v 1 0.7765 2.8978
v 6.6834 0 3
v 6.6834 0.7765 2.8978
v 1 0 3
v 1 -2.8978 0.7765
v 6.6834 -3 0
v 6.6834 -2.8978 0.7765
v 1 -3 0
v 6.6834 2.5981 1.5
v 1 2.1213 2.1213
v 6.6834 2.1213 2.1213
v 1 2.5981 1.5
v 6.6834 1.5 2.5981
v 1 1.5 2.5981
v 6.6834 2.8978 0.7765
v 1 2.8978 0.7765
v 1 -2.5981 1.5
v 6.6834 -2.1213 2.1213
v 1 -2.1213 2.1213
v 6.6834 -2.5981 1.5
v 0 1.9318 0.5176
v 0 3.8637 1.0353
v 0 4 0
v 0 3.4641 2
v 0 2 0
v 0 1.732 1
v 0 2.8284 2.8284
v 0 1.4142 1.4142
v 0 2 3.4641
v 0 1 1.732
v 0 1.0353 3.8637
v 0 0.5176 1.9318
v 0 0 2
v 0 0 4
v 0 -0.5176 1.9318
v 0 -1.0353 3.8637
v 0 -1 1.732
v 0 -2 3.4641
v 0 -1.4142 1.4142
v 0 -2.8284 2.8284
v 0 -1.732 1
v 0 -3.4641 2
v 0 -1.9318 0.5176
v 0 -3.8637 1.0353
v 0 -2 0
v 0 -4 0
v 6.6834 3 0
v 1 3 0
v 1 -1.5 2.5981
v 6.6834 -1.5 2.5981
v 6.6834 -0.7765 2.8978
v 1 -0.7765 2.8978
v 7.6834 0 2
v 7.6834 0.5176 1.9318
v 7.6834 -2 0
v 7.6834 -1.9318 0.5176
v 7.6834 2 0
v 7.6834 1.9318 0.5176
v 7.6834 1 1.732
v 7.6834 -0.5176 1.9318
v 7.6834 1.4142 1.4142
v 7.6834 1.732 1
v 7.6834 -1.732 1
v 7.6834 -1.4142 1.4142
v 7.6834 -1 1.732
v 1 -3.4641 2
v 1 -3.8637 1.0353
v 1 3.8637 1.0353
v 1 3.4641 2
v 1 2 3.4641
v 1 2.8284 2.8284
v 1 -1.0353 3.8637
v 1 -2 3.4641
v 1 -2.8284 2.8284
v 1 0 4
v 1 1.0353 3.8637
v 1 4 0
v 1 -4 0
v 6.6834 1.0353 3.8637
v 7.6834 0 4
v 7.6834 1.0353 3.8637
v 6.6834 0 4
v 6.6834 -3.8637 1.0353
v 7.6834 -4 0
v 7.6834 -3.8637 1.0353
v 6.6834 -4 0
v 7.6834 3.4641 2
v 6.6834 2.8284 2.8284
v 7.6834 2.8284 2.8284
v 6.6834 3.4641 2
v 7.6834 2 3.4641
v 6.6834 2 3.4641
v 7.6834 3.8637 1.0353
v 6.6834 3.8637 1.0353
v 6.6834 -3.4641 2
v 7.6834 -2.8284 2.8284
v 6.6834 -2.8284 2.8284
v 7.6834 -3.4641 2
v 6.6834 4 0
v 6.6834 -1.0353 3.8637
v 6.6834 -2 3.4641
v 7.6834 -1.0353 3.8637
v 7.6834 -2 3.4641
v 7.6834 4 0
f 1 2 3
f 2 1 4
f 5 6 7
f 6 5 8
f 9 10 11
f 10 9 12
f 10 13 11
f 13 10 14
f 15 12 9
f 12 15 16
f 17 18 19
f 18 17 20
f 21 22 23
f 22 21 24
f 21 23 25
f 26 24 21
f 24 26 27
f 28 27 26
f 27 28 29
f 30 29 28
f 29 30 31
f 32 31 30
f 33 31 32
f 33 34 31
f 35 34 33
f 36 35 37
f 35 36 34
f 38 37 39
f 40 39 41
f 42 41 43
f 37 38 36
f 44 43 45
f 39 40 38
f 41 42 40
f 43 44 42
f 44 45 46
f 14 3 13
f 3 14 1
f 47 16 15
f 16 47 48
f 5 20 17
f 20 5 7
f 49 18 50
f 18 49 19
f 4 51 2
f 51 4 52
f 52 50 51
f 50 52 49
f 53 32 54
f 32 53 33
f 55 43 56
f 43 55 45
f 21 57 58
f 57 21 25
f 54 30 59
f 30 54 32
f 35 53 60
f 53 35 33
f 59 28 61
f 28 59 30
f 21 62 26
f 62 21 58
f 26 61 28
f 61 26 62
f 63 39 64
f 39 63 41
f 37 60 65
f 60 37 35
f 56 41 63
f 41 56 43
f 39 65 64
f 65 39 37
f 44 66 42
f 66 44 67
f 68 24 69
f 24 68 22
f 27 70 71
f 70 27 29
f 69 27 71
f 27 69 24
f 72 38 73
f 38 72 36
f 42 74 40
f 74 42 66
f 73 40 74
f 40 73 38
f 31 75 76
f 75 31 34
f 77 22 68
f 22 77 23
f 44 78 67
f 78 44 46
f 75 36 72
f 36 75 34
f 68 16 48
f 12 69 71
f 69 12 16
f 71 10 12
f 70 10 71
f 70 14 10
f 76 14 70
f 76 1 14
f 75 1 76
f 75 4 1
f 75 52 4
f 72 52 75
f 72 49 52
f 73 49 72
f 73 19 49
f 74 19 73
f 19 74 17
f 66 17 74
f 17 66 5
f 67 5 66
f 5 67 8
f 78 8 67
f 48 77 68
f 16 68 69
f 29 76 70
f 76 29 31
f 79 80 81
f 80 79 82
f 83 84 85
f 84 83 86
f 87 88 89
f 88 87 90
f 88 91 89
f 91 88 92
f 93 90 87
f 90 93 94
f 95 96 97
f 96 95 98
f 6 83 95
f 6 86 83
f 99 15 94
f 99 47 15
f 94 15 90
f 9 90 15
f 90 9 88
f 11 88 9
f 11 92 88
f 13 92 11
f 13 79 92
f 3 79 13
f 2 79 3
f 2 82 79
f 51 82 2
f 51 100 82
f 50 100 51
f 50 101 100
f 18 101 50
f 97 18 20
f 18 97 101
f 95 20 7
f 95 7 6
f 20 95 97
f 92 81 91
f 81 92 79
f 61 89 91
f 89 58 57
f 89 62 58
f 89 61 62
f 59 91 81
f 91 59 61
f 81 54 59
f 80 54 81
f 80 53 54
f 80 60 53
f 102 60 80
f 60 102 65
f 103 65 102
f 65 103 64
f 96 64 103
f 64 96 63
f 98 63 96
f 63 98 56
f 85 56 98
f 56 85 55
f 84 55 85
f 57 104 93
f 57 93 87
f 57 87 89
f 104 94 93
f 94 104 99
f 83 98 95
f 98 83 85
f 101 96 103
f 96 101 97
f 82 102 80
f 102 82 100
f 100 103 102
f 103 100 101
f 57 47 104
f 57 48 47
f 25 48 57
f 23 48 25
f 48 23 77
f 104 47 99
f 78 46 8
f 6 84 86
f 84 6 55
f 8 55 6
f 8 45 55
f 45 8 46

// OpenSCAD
// file: ../build_environments.scad
// build_environments.scad: modules to build level sections
//

module pool(diameter=10.0, wall_height=2.0, step_width=3.0, connections=[])
{
    difference() {
        union() {
        difference() {
            cylinder(h=0.5,r1=diameter+step_width,r2=diameter+step_width,$fn=48);
            translate([0,0,-0.1])
                cylinder(h=0.7,r1=diameter,r2=diameter,$fn=48);
        }
        difference() {
            cylinder(h=wall_height,r1=diameter+step_width+1.0,r2=diameter+step_width+1.0,$fn=48);
            translate([0,0,-0.1])
                cylinder(h=wall_height+0.2,r1=diameter+step_width,r2=diameter+step_width,$fn=48);
        }
        }
    
        for (c = connections)
        {
            rotate([0,90,0]) {
                angle = atan2(c[1],c[0]);
                rotate([-angle,0,0]) {
                    cylinder(h=diameter+5.0,r1=c[2],r2=c[2],$fn=48);
                }
            }
        }
    }
}

module straight(length=10.0, width=2.0, dy1=0.0, dy2=0.0, dz=0.0)
{
    dims = [0, 0, 0, 0, 0, (dz/length)];
    matrix = [
        [ 1, dims[0], dims[1], 0 ],
        [ dims[2], 1, dims[4], 0 ],
        [ dims[5], dims[3], 1, 0 ],
        [ 0, 0, 0, 1 ]
    ];
    multmatrix(matrix)
    difference() {
        translate([dy1,0,0])
        union() {
            rotate([0,90,0]) {
                difference() {
                    cylinder(h=(length-dy1-dy2),r1=width+1.0,r2=width+1.0,$fn=24);
                    translate([0,0,-0.1])
                        cylinder(h=(length-dy1-dy2+0.2),r1=width,r2=width,$fn=24);
                }
                difference() {
                    cylinder(h=1.0,r1=width+2.0,r2=width+2.0,$fn=24);
                    translate([0,0,-0.1])
                        cylinder(h=1.2,r1=width,r2=width,$fn=24);
                }
                translate([0,0,(length-dy1-dy2)-1.0]) {
                    difference() {
                        cylinder(h=1.0,r1=width+2.0,r2=width+2.0,$fn=24);
                        translate([0,0,-0.1])
                            cylinder(h=1.2,r1=width,r2=width,$fn=24);
                    }
                }
            }
        }
        translate([0,0,-(2*width+4.0)/2])
            cube([3*length,3*length,2*width+4.0],center=true);
    }
}

module curve(p0=[0,0], center=[0,0], dir=1, angle=0.0, width=2.0)
{
    radius = sqrt((p0[0]-center[0])*(p0[0]-center[0]) + (p0[1]-center[1])*(p0[1]-center[1]));
    if (dir == 0) {
        difference() {
            rotate([0,0,-90])
            difference() {
                rotate_extrude(angle = angle, convexity = 10, $fn=32)
                    translate([radius, 0, 0])
                        circle(r = width+1.0,$fn=24);
                rotate([0,0,-1.0])
                    rotate_extrude(angle = angle+2.0, convexity = 10, $fn=32)
                        translate([radius, 0, 0])
                            circle(r = width,$fn=24);
            }
            translate([0,0,-(2*width+4.0)/2])
                cube([5*radius,5*radius,2*width+4.0],center=true);
        }
    }
    else {
        difference() {
            rotate([0,0,90])
            difference() {
                rotate_extrude(angle = -angle, convexity = 10, $fn=32)
                    translate([radius, 0, 0])
                        circle(r = width+1.0,$fn=24);
                rotate([0,0,1.0])
                    rotate_extrude(angle = -angle-2.0, convexity = 10, $fn=32)
                        translate([radius, 0, 0])
                            circle(r = width,$fn=24);
            }
            translate([0,0,-(2*width+4.0)/2])
                cube([5*radius,5*radius,2*width+4.0],center=true);
        }
    }

}

// test pool
//pool(diameter=12.0000, wall_height=3.0000, step_width=3.0000, connections=[[0.0000,-26.0000,2.0000], [23.6074,0.0000,2.0000]]);

// test straight, slope
//straight(length=26.0000, width=2.0000, dy1=11.8322, dy2=6.7082, dz=0.0000);
//straight(length=29.1549, width=12.0000, dy1=0.0000, dy2=0.0000, dz=-15.0000);

// test curve
//curve(p0=[23.6074, 0.0000], center=[23.6074, 5.0000], dir=0, angle=60.1011, width=2.0000);
//curve(p0=[33.6426, 12.4219], center=[37.9771, 9.9295], dir=1, angle=120.4627, width=2.0000);
// main file
use <../build_environments.scad>;
straight(length=13.3403, width=2.0000, dy1=0.0000, dy2=5.6569, dz=0.0000);
